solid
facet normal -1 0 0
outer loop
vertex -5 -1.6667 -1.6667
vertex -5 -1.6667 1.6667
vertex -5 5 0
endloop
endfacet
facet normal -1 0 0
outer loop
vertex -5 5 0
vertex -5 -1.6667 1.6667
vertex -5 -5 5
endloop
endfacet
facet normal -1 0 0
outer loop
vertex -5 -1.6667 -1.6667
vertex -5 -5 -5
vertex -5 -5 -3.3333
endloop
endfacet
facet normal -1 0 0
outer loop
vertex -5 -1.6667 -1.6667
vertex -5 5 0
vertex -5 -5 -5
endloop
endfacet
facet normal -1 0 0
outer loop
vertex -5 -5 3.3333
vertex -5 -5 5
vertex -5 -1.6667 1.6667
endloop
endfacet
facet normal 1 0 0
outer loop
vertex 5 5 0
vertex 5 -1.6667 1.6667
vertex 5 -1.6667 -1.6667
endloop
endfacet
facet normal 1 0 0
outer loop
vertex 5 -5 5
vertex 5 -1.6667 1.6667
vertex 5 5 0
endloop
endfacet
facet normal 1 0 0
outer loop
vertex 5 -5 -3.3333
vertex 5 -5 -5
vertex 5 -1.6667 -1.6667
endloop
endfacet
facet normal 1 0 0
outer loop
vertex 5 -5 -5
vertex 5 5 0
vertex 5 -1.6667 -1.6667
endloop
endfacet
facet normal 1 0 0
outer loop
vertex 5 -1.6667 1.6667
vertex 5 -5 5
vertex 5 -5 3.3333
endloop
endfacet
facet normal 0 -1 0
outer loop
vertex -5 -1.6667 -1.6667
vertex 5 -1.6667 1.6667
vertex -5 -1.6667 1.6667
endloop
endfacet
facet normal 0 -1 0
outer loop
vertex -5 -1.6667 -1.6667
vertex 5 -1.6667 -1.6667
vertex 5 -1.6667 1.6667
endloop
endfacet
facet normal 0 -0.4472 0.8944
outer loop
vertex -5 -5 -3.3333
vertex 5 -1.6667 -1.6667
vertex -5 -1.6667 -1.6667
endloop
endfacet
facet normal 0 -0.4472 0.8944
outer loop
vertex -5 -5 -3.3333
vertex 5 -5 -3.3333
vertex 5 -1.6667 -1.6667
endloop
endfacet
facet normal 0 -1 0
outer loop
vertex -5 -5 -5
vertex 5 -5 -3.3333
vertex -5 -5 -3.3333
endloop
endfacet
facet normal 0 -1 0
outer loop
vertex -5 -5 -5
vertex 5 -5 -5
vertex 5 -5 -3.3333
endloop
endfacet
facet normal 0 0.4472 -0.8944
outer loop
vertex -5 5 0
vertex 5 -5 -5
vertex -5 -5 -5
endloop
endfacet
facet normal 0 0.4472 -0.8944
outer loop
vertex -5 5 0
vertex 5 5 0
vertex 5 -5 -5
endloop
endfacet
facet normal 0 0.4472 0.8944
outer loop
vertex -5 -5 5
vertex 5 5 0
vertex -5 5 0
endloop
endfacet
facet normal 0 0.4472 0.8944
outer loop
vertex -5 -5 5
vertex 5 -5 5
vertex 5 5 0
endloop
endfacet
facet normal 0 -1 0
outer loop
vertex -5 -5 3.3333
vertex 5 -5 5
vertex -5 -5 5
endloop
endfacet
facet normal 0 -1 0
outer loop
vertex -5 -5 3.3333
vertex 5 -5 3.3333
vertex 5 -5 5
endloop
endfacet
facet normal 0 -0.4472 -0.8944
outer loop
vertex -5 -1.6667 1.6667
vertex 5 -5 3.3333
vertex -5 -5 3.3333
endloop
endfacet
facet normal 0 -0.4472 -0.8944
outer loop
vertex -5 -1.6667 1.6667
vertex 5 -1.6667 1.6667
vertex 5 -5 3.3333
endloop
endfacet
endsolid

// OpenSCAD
// Generated by SolidPython 1.1.3 on 2025-02-20 03:56:27
$fn=50;


rotate(a = 90, v = [0, 1, 0]) {
	translate(v = [-5.0000000000, -5.0000000000, -5.0000000000]) {
		linear_extrude(height = 10) {
			polygon(points = [[0, 0], [5.0000000000, 10], [10, 0], [8.3333333333, 0], [6.6666666667, 3.3333333333], [3.3333333333, 3.3333333333], [1.6666666667, 0]]);
		}
	}
}
/***********************************************
*********      SolidPython code:      **********
************************************************
 
from solid import *
from solid.utils import *

import math
import matplotlib.pyplot as plt
import subprocess
import os

class Hole:
    def __init__(self, x, y, radius):
        """
        Hole defined by:
        :param x: x dimension for center point of the circle as a ratio of letter height
        :param y: y dimension for center point of the circle as a ratio of letter height
        :param radius: radius of circle as a ratio of letter height
        """
        self.x = x
        self.y = y
        self.radius = radius

class Letter3D:
    def __init__(self, name, outer_shape_points, height, holes=None):
        """
        3D Letter defined by:
        :param name: name of letter
        :param outer_shape_points: points defining the outer shape of the letter
        :param heigh: size of cube that letter fits inside
        :param holes: list of Holes
        """
        self.name = name
        self.outer_shape_points = outer_shape_points
        self.holes = holes if holes is None else []
        self.height = height


    def generate(self):
        shape = polygon(points=self.outer_shape_points)

        if self.holes:
            for hole in self.holes:
                circle_hole = circle(r=hole.radius*self.height)
                positioned_hole = translate([hole.x*self.height, hole.y*self.height])(circle_hole)
                shape = difference()(shape, positioned_hole)
        
        shape_3d = linear_extrude(height=self.height)(shape)
        shape_3d = translate([-self.height/2, -self.height/2, -self.height/2])(shape_3d)
        return shape_3d
    
    def render(self):
        scad_render_to_file(self.shape, f"output/{self.name}.scad", file_header='$fn=50;')
        subprocess.run(["C:\\Program Files\\OpenSCAD\\openscad.exe", "-o", f"output\\{self.name}.stl", f"output\\{self.name}.scad"])


class TwoLetter3D:
    def __init__(self, height, letterA, letterA_face, letterB=None, letterB_face=None):
        self.height = height
        self.letterA = letterA
        self.letterB = letterB
        self.letterA_face = letterA_face
        self.letterB_face = letterB_face

    def call_letter_generation(self, letter):
        letter = letter.upper()
        function_name = f"letter_{letter}"
        func = globals().get(function_name)
        if func is None:
            raise ValueError(f"No letter generation function defined for letter '{letter}'.")
        else:
            print(func)
        return func(self.height)
    
    def rotate_object(self, face, shape):
        face = face.lower()
        if face == "z":
            return shape
        if face == "x":
            return rotate(a=90, v=[0,1,0])(shape)
        if face == "y":
            return rotate(a=-90, v=[1,0,0])(shape)
        else:
            raise ValueError("Face must be one of 'x', 'y', or 'z'.")

    def render(self):
        if self.letterA:
            letterA3D = self.call_letter_generation(self.letterA)
            letterA3D = self.rotate_object(self.letterA_face, letterA3D)

        if self.letterB:
            letterB3D = self.call_letter_generation(self.letterB)
            letterB3D = self.rotate_object(self.letterB_face, letterB3D)
            combined = intersection()(letterA3D, letterB3D)
            file_name = self.letterA + self.letterB
            scad_render_to_file(combined, f"output/{file_name}.scad", file_header='$fn=50;')
            subprocess.run(["C:\\Program Files\\OpenSCAD\\openscad.exe", "-o", f"output\\{file_name}.stl", f"output\\{file_name}.scad"])
            return
        else:
            file_name = self.letterA
            scad_render_to_file(letterA3D, f"output/{file_name}.scad", file_header='$fn=50;')
            subprocess.run(["C:\\Program Files\\OpenSCAD\\openscad.exe", "-o", f"output\\{file_name}.stl", f"output\\{file_name}.scad"])
    
                

def arc_points(radius, start_angle, end_angle, center=[0,0], num_points=50):
    angles = [start_angle + i * (end_angle - start_angle) / (num_points - 1)
              for i in range(num_points)]
    points = [
        (center[0] + radius * math.cos(math.radians(angle)),
         center[1] + radius * math.sin(math.radians(angle)))
        for angle in angles
    ]
    return points

def letter_A(h):
    shape_points = [(0,0), (h/2, h), (h, 0), (5/6*h, 0), (2/3*h, 1/3*h), (1/3*h, 1/3*h), (h/6, 0)]
    holes = [Hole(1/2, 7/12, 1/6)]
    A = Letter3D("A", shape_points, h, holes)
    return A.generate()

def letter_B(h):
    top_arc_points = arc_points(h/4, 90, -90, center=[3/4*h, 3/4*h])
    bottom_arc_points = arc_points(h/4, 90, -90, center=[3/4*h, h/4])
    other_points = [(0,0),(0,h)]

    shape_points = top_arc_points + bottom_arc_points + other_points
    holes = [Hole(1/2, 3/4, 1/6), Hole(1/2, 1/4, 1/6)]
    B = Letter3D("B", shape_points, h, holes)
    return B.generate()

def letter_C(h):
    outer_arc_points = arc_points(h/2, 30, 330, center=[0,0])
    inner_arc_points = arc_points(h/4, 30, 330, center=[0,0])[::-1]
    shape_points = outer_arc_points + inner_arc_points
    # print(shape_points)
    C = Letter3D("C", shape_points, h)
    return C.generate()


def letter_D(h):
    outer_arc_points = arc_points(h/2, 90, -90, center= [h/2, h/2])
    shape_points = outer_arc_points + [(0,0), (0, h)]
    holes = [Hole(1/2, 1/2, 1/6)]
    D = Letter3D("D", shape_points, h, holes)
    return D.generate()

def letter_E(h):
    points = [(0,0), (h,0), (h,h/5), (h/5,h/5), (h/5,2/5*h), (3/4*h,2/5*h), (3/4*h,3/5*h), (h/5,3/5*h), (h/5,4/5*h), (h,4/5*h), (h,h), (0,h)]
    E = Letter3D("E", points, h)
    return E.generate()

def letter_F(h):
    points = [(0,0), (h/5,0), (h/5,2/5*h), (3/4*h,2/5*h), (3/4*h,3/5*h), (h/5,3/5*h), (h/5,4/5*h), (h,4/5*h), (h,h), (0,h)]
    F = Letter3D("F", points, h)
    return F.generate()

if __name__ == "__main__":
    os.makedirs("output", exist_ok=True)

    shape = TwoLetter3D(10, "A", "x")
    shape.render()
 
 
************************************************/
